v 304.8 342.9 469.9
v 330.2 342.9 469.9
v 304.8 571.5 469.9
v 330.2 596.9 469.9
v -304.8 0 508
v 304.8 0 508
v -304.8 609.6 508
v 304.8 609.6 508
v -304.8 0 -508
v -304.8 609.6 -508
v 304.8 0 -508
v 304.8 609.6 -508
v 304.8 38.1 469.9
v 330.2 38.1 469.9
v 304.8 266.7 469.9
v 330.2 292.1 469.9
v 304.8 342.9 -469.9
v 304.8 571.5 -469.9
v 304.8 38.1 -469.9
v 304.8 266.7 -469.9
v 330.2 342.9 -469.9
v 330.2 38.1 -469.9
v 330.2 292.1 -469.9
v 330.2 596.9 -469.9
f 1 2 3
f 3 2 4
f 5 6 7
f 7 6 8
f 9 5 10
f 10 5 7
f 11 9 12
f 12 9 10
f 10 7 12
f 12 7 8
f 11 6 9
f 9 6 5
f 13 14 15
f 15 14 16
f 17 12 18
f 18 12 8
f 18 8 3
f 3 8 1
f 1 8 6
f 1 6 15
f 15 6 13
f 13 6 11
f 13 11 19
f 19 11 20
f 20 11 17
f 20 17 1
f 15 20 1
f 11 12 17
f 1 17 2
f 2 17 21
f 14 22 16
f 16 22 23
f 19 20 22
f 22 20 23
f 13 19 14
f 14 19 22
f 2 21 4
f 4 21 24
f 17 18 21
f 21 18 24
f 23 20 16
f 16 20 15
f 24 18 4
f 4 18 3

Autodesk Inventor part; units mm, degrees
ref_plane "YZ Plane" through (0, 0, 0) normal (1, 0, 0) x (0, 1, 0)
ref_plane "XZ Plane" through (0, 0, 0) normal (0, 1, 0) x (-1, 0, 0)
ref_plane "XY Plane" through (0, 0, 0) normal (0, 0, 1) x (1, 0, 0)
sketch "Sketch2" plane through (0, 0, 0) normal (0, 1, 0) x (-1, 0, 0)
  line L0 (-304.8, 508) -> (304.8, 508)
  line L1 (304.8, 508) -> (304.8, -508)
  line L2 (304.8, -508) -> (-304.8, -508)
  line L3 (-304.8, -508) -> (-304.8, 508)
  line L4 (-304.8, 508) -> (304.8, -508) construction
  line L5 (304.8, 508) -> (-304.8, -508) construction
  point P0 (0, 0)
  dimension "d2" = 609.6
  dimension "d3" = 1016
extrude "Extrusion1" add sketch "Sketch2" along normal blind 609.6
sketch "Sketch3" plane through (304.8, 0, 508) normal (1, 0, 0) x (0, 0, -1)
  line L0 (0, 0) -> (1016, 0) projected
  line L1 (1016, 0) -> (1016, 609.6) projected
  line L2 (0, 609.6) -> (1016, 609.6) projected
  line L3 (0, 0) -> (0, 609.6) projected
  line L4 (0, 0) -> (0, 609.6) projected
  line L5 (1016, 0) -> (1016, 609.6) projected
  line L6 (1016, 0) -> (0, 0) projected
  line L7 (0, 304.8) -> (1016, 304.8)
  line L8 (1016, 304.8) -> (1016, 0)
  line L9 (1016, 0) -> (0, 0)
  line L10 (0, 0) -> (0, 304.8)
  line L11 (0, 304.8) -> (1016, 304.8)
  line L12 (1016, 304.8) -> (1016, 609.6)
  line L13 (1016, 609.6) -> (0, 609.6)
  line L14 (0, 609.6) -> (0, 304.8)
  line L15 (977.9, 266.7) -> (38.1, 266.7)
  line L16 (38.1, 266.7) -> (38.1, 38.1)
  line L17 (38.1, 38.1) -> (977.9, 38.1)
  line L18 (977.9, 38.1) -> (977.9, 266.7)
  line L19 (977.9, 342.9) -> (38.1, 342.9)
  line L20 (38.1, 342.9) -> (38.1, 571.5)
  line L21 (38.1, 571.5) -> (977.9, 571.5)
  line L22 (977.9, 571.5) -> (977.9, 342.9)
  point P0 (508, 0)
  dimension "d5" = 38.1
  dimension "d6" = 38.1
extrude "Extrusion2" add sketch "Sketch3" along normal blind 25.4 contours L18 L17 L16 L15 | L19 L20 L21 L22
sketch "Sketch4" plane through (304.8, 38.1, 469.9) normal (0, 0, 1) x (1, 0, 0)
  line L0 (0, 304.8) -> (0, 533.4) projected
  line L1 (0, 304.8) -> (25.4, 304.8) projected
  line L2 (25.4, 533.4) -> (25.4, 304.8) projected
  line L3 (0, 533.4) -> (25.4, 533.4) projected
  line L4 (0, 0) -> (0, 228.6) projected
  line L5 (0, 0) -> (25.4, 0) projected
  line L6 (25.4, 228.6) -> (25.4, 0) projected
  line L7 (0, 228.6) -> (25.4, 228.6) projected
  line L8 (25.4, 228.6) -> (25.4, 0) projected
  line L9 (25.4, 228.6) -> (25.4, 254)
  line L10 (0, 228.6) -> (25.4, 228.6) projected
  line L11 (25.4, 254) -> (0, 228.6)
  line L12 (25.4, 533.4) -> (25.4, 304.8) projected
  line L13 (25.4, 533.4) -> (25.4, 558.8)
  line L14 (0, 533.4) -> (25.4, 533.4) projected
  line L15 (25.4, 558.8) -> (0, 533.4)
  point P0 (-304.8, -38.1)
  dimension "d9" = 25.4
  dimension "d10" = 25.4
extrude "Extrusion3" add sketch "Sketch4" against normal up to surface (939.8 mm away) contours L15 L13 L3 | L11 L9 L7
properties part number "drawer"
